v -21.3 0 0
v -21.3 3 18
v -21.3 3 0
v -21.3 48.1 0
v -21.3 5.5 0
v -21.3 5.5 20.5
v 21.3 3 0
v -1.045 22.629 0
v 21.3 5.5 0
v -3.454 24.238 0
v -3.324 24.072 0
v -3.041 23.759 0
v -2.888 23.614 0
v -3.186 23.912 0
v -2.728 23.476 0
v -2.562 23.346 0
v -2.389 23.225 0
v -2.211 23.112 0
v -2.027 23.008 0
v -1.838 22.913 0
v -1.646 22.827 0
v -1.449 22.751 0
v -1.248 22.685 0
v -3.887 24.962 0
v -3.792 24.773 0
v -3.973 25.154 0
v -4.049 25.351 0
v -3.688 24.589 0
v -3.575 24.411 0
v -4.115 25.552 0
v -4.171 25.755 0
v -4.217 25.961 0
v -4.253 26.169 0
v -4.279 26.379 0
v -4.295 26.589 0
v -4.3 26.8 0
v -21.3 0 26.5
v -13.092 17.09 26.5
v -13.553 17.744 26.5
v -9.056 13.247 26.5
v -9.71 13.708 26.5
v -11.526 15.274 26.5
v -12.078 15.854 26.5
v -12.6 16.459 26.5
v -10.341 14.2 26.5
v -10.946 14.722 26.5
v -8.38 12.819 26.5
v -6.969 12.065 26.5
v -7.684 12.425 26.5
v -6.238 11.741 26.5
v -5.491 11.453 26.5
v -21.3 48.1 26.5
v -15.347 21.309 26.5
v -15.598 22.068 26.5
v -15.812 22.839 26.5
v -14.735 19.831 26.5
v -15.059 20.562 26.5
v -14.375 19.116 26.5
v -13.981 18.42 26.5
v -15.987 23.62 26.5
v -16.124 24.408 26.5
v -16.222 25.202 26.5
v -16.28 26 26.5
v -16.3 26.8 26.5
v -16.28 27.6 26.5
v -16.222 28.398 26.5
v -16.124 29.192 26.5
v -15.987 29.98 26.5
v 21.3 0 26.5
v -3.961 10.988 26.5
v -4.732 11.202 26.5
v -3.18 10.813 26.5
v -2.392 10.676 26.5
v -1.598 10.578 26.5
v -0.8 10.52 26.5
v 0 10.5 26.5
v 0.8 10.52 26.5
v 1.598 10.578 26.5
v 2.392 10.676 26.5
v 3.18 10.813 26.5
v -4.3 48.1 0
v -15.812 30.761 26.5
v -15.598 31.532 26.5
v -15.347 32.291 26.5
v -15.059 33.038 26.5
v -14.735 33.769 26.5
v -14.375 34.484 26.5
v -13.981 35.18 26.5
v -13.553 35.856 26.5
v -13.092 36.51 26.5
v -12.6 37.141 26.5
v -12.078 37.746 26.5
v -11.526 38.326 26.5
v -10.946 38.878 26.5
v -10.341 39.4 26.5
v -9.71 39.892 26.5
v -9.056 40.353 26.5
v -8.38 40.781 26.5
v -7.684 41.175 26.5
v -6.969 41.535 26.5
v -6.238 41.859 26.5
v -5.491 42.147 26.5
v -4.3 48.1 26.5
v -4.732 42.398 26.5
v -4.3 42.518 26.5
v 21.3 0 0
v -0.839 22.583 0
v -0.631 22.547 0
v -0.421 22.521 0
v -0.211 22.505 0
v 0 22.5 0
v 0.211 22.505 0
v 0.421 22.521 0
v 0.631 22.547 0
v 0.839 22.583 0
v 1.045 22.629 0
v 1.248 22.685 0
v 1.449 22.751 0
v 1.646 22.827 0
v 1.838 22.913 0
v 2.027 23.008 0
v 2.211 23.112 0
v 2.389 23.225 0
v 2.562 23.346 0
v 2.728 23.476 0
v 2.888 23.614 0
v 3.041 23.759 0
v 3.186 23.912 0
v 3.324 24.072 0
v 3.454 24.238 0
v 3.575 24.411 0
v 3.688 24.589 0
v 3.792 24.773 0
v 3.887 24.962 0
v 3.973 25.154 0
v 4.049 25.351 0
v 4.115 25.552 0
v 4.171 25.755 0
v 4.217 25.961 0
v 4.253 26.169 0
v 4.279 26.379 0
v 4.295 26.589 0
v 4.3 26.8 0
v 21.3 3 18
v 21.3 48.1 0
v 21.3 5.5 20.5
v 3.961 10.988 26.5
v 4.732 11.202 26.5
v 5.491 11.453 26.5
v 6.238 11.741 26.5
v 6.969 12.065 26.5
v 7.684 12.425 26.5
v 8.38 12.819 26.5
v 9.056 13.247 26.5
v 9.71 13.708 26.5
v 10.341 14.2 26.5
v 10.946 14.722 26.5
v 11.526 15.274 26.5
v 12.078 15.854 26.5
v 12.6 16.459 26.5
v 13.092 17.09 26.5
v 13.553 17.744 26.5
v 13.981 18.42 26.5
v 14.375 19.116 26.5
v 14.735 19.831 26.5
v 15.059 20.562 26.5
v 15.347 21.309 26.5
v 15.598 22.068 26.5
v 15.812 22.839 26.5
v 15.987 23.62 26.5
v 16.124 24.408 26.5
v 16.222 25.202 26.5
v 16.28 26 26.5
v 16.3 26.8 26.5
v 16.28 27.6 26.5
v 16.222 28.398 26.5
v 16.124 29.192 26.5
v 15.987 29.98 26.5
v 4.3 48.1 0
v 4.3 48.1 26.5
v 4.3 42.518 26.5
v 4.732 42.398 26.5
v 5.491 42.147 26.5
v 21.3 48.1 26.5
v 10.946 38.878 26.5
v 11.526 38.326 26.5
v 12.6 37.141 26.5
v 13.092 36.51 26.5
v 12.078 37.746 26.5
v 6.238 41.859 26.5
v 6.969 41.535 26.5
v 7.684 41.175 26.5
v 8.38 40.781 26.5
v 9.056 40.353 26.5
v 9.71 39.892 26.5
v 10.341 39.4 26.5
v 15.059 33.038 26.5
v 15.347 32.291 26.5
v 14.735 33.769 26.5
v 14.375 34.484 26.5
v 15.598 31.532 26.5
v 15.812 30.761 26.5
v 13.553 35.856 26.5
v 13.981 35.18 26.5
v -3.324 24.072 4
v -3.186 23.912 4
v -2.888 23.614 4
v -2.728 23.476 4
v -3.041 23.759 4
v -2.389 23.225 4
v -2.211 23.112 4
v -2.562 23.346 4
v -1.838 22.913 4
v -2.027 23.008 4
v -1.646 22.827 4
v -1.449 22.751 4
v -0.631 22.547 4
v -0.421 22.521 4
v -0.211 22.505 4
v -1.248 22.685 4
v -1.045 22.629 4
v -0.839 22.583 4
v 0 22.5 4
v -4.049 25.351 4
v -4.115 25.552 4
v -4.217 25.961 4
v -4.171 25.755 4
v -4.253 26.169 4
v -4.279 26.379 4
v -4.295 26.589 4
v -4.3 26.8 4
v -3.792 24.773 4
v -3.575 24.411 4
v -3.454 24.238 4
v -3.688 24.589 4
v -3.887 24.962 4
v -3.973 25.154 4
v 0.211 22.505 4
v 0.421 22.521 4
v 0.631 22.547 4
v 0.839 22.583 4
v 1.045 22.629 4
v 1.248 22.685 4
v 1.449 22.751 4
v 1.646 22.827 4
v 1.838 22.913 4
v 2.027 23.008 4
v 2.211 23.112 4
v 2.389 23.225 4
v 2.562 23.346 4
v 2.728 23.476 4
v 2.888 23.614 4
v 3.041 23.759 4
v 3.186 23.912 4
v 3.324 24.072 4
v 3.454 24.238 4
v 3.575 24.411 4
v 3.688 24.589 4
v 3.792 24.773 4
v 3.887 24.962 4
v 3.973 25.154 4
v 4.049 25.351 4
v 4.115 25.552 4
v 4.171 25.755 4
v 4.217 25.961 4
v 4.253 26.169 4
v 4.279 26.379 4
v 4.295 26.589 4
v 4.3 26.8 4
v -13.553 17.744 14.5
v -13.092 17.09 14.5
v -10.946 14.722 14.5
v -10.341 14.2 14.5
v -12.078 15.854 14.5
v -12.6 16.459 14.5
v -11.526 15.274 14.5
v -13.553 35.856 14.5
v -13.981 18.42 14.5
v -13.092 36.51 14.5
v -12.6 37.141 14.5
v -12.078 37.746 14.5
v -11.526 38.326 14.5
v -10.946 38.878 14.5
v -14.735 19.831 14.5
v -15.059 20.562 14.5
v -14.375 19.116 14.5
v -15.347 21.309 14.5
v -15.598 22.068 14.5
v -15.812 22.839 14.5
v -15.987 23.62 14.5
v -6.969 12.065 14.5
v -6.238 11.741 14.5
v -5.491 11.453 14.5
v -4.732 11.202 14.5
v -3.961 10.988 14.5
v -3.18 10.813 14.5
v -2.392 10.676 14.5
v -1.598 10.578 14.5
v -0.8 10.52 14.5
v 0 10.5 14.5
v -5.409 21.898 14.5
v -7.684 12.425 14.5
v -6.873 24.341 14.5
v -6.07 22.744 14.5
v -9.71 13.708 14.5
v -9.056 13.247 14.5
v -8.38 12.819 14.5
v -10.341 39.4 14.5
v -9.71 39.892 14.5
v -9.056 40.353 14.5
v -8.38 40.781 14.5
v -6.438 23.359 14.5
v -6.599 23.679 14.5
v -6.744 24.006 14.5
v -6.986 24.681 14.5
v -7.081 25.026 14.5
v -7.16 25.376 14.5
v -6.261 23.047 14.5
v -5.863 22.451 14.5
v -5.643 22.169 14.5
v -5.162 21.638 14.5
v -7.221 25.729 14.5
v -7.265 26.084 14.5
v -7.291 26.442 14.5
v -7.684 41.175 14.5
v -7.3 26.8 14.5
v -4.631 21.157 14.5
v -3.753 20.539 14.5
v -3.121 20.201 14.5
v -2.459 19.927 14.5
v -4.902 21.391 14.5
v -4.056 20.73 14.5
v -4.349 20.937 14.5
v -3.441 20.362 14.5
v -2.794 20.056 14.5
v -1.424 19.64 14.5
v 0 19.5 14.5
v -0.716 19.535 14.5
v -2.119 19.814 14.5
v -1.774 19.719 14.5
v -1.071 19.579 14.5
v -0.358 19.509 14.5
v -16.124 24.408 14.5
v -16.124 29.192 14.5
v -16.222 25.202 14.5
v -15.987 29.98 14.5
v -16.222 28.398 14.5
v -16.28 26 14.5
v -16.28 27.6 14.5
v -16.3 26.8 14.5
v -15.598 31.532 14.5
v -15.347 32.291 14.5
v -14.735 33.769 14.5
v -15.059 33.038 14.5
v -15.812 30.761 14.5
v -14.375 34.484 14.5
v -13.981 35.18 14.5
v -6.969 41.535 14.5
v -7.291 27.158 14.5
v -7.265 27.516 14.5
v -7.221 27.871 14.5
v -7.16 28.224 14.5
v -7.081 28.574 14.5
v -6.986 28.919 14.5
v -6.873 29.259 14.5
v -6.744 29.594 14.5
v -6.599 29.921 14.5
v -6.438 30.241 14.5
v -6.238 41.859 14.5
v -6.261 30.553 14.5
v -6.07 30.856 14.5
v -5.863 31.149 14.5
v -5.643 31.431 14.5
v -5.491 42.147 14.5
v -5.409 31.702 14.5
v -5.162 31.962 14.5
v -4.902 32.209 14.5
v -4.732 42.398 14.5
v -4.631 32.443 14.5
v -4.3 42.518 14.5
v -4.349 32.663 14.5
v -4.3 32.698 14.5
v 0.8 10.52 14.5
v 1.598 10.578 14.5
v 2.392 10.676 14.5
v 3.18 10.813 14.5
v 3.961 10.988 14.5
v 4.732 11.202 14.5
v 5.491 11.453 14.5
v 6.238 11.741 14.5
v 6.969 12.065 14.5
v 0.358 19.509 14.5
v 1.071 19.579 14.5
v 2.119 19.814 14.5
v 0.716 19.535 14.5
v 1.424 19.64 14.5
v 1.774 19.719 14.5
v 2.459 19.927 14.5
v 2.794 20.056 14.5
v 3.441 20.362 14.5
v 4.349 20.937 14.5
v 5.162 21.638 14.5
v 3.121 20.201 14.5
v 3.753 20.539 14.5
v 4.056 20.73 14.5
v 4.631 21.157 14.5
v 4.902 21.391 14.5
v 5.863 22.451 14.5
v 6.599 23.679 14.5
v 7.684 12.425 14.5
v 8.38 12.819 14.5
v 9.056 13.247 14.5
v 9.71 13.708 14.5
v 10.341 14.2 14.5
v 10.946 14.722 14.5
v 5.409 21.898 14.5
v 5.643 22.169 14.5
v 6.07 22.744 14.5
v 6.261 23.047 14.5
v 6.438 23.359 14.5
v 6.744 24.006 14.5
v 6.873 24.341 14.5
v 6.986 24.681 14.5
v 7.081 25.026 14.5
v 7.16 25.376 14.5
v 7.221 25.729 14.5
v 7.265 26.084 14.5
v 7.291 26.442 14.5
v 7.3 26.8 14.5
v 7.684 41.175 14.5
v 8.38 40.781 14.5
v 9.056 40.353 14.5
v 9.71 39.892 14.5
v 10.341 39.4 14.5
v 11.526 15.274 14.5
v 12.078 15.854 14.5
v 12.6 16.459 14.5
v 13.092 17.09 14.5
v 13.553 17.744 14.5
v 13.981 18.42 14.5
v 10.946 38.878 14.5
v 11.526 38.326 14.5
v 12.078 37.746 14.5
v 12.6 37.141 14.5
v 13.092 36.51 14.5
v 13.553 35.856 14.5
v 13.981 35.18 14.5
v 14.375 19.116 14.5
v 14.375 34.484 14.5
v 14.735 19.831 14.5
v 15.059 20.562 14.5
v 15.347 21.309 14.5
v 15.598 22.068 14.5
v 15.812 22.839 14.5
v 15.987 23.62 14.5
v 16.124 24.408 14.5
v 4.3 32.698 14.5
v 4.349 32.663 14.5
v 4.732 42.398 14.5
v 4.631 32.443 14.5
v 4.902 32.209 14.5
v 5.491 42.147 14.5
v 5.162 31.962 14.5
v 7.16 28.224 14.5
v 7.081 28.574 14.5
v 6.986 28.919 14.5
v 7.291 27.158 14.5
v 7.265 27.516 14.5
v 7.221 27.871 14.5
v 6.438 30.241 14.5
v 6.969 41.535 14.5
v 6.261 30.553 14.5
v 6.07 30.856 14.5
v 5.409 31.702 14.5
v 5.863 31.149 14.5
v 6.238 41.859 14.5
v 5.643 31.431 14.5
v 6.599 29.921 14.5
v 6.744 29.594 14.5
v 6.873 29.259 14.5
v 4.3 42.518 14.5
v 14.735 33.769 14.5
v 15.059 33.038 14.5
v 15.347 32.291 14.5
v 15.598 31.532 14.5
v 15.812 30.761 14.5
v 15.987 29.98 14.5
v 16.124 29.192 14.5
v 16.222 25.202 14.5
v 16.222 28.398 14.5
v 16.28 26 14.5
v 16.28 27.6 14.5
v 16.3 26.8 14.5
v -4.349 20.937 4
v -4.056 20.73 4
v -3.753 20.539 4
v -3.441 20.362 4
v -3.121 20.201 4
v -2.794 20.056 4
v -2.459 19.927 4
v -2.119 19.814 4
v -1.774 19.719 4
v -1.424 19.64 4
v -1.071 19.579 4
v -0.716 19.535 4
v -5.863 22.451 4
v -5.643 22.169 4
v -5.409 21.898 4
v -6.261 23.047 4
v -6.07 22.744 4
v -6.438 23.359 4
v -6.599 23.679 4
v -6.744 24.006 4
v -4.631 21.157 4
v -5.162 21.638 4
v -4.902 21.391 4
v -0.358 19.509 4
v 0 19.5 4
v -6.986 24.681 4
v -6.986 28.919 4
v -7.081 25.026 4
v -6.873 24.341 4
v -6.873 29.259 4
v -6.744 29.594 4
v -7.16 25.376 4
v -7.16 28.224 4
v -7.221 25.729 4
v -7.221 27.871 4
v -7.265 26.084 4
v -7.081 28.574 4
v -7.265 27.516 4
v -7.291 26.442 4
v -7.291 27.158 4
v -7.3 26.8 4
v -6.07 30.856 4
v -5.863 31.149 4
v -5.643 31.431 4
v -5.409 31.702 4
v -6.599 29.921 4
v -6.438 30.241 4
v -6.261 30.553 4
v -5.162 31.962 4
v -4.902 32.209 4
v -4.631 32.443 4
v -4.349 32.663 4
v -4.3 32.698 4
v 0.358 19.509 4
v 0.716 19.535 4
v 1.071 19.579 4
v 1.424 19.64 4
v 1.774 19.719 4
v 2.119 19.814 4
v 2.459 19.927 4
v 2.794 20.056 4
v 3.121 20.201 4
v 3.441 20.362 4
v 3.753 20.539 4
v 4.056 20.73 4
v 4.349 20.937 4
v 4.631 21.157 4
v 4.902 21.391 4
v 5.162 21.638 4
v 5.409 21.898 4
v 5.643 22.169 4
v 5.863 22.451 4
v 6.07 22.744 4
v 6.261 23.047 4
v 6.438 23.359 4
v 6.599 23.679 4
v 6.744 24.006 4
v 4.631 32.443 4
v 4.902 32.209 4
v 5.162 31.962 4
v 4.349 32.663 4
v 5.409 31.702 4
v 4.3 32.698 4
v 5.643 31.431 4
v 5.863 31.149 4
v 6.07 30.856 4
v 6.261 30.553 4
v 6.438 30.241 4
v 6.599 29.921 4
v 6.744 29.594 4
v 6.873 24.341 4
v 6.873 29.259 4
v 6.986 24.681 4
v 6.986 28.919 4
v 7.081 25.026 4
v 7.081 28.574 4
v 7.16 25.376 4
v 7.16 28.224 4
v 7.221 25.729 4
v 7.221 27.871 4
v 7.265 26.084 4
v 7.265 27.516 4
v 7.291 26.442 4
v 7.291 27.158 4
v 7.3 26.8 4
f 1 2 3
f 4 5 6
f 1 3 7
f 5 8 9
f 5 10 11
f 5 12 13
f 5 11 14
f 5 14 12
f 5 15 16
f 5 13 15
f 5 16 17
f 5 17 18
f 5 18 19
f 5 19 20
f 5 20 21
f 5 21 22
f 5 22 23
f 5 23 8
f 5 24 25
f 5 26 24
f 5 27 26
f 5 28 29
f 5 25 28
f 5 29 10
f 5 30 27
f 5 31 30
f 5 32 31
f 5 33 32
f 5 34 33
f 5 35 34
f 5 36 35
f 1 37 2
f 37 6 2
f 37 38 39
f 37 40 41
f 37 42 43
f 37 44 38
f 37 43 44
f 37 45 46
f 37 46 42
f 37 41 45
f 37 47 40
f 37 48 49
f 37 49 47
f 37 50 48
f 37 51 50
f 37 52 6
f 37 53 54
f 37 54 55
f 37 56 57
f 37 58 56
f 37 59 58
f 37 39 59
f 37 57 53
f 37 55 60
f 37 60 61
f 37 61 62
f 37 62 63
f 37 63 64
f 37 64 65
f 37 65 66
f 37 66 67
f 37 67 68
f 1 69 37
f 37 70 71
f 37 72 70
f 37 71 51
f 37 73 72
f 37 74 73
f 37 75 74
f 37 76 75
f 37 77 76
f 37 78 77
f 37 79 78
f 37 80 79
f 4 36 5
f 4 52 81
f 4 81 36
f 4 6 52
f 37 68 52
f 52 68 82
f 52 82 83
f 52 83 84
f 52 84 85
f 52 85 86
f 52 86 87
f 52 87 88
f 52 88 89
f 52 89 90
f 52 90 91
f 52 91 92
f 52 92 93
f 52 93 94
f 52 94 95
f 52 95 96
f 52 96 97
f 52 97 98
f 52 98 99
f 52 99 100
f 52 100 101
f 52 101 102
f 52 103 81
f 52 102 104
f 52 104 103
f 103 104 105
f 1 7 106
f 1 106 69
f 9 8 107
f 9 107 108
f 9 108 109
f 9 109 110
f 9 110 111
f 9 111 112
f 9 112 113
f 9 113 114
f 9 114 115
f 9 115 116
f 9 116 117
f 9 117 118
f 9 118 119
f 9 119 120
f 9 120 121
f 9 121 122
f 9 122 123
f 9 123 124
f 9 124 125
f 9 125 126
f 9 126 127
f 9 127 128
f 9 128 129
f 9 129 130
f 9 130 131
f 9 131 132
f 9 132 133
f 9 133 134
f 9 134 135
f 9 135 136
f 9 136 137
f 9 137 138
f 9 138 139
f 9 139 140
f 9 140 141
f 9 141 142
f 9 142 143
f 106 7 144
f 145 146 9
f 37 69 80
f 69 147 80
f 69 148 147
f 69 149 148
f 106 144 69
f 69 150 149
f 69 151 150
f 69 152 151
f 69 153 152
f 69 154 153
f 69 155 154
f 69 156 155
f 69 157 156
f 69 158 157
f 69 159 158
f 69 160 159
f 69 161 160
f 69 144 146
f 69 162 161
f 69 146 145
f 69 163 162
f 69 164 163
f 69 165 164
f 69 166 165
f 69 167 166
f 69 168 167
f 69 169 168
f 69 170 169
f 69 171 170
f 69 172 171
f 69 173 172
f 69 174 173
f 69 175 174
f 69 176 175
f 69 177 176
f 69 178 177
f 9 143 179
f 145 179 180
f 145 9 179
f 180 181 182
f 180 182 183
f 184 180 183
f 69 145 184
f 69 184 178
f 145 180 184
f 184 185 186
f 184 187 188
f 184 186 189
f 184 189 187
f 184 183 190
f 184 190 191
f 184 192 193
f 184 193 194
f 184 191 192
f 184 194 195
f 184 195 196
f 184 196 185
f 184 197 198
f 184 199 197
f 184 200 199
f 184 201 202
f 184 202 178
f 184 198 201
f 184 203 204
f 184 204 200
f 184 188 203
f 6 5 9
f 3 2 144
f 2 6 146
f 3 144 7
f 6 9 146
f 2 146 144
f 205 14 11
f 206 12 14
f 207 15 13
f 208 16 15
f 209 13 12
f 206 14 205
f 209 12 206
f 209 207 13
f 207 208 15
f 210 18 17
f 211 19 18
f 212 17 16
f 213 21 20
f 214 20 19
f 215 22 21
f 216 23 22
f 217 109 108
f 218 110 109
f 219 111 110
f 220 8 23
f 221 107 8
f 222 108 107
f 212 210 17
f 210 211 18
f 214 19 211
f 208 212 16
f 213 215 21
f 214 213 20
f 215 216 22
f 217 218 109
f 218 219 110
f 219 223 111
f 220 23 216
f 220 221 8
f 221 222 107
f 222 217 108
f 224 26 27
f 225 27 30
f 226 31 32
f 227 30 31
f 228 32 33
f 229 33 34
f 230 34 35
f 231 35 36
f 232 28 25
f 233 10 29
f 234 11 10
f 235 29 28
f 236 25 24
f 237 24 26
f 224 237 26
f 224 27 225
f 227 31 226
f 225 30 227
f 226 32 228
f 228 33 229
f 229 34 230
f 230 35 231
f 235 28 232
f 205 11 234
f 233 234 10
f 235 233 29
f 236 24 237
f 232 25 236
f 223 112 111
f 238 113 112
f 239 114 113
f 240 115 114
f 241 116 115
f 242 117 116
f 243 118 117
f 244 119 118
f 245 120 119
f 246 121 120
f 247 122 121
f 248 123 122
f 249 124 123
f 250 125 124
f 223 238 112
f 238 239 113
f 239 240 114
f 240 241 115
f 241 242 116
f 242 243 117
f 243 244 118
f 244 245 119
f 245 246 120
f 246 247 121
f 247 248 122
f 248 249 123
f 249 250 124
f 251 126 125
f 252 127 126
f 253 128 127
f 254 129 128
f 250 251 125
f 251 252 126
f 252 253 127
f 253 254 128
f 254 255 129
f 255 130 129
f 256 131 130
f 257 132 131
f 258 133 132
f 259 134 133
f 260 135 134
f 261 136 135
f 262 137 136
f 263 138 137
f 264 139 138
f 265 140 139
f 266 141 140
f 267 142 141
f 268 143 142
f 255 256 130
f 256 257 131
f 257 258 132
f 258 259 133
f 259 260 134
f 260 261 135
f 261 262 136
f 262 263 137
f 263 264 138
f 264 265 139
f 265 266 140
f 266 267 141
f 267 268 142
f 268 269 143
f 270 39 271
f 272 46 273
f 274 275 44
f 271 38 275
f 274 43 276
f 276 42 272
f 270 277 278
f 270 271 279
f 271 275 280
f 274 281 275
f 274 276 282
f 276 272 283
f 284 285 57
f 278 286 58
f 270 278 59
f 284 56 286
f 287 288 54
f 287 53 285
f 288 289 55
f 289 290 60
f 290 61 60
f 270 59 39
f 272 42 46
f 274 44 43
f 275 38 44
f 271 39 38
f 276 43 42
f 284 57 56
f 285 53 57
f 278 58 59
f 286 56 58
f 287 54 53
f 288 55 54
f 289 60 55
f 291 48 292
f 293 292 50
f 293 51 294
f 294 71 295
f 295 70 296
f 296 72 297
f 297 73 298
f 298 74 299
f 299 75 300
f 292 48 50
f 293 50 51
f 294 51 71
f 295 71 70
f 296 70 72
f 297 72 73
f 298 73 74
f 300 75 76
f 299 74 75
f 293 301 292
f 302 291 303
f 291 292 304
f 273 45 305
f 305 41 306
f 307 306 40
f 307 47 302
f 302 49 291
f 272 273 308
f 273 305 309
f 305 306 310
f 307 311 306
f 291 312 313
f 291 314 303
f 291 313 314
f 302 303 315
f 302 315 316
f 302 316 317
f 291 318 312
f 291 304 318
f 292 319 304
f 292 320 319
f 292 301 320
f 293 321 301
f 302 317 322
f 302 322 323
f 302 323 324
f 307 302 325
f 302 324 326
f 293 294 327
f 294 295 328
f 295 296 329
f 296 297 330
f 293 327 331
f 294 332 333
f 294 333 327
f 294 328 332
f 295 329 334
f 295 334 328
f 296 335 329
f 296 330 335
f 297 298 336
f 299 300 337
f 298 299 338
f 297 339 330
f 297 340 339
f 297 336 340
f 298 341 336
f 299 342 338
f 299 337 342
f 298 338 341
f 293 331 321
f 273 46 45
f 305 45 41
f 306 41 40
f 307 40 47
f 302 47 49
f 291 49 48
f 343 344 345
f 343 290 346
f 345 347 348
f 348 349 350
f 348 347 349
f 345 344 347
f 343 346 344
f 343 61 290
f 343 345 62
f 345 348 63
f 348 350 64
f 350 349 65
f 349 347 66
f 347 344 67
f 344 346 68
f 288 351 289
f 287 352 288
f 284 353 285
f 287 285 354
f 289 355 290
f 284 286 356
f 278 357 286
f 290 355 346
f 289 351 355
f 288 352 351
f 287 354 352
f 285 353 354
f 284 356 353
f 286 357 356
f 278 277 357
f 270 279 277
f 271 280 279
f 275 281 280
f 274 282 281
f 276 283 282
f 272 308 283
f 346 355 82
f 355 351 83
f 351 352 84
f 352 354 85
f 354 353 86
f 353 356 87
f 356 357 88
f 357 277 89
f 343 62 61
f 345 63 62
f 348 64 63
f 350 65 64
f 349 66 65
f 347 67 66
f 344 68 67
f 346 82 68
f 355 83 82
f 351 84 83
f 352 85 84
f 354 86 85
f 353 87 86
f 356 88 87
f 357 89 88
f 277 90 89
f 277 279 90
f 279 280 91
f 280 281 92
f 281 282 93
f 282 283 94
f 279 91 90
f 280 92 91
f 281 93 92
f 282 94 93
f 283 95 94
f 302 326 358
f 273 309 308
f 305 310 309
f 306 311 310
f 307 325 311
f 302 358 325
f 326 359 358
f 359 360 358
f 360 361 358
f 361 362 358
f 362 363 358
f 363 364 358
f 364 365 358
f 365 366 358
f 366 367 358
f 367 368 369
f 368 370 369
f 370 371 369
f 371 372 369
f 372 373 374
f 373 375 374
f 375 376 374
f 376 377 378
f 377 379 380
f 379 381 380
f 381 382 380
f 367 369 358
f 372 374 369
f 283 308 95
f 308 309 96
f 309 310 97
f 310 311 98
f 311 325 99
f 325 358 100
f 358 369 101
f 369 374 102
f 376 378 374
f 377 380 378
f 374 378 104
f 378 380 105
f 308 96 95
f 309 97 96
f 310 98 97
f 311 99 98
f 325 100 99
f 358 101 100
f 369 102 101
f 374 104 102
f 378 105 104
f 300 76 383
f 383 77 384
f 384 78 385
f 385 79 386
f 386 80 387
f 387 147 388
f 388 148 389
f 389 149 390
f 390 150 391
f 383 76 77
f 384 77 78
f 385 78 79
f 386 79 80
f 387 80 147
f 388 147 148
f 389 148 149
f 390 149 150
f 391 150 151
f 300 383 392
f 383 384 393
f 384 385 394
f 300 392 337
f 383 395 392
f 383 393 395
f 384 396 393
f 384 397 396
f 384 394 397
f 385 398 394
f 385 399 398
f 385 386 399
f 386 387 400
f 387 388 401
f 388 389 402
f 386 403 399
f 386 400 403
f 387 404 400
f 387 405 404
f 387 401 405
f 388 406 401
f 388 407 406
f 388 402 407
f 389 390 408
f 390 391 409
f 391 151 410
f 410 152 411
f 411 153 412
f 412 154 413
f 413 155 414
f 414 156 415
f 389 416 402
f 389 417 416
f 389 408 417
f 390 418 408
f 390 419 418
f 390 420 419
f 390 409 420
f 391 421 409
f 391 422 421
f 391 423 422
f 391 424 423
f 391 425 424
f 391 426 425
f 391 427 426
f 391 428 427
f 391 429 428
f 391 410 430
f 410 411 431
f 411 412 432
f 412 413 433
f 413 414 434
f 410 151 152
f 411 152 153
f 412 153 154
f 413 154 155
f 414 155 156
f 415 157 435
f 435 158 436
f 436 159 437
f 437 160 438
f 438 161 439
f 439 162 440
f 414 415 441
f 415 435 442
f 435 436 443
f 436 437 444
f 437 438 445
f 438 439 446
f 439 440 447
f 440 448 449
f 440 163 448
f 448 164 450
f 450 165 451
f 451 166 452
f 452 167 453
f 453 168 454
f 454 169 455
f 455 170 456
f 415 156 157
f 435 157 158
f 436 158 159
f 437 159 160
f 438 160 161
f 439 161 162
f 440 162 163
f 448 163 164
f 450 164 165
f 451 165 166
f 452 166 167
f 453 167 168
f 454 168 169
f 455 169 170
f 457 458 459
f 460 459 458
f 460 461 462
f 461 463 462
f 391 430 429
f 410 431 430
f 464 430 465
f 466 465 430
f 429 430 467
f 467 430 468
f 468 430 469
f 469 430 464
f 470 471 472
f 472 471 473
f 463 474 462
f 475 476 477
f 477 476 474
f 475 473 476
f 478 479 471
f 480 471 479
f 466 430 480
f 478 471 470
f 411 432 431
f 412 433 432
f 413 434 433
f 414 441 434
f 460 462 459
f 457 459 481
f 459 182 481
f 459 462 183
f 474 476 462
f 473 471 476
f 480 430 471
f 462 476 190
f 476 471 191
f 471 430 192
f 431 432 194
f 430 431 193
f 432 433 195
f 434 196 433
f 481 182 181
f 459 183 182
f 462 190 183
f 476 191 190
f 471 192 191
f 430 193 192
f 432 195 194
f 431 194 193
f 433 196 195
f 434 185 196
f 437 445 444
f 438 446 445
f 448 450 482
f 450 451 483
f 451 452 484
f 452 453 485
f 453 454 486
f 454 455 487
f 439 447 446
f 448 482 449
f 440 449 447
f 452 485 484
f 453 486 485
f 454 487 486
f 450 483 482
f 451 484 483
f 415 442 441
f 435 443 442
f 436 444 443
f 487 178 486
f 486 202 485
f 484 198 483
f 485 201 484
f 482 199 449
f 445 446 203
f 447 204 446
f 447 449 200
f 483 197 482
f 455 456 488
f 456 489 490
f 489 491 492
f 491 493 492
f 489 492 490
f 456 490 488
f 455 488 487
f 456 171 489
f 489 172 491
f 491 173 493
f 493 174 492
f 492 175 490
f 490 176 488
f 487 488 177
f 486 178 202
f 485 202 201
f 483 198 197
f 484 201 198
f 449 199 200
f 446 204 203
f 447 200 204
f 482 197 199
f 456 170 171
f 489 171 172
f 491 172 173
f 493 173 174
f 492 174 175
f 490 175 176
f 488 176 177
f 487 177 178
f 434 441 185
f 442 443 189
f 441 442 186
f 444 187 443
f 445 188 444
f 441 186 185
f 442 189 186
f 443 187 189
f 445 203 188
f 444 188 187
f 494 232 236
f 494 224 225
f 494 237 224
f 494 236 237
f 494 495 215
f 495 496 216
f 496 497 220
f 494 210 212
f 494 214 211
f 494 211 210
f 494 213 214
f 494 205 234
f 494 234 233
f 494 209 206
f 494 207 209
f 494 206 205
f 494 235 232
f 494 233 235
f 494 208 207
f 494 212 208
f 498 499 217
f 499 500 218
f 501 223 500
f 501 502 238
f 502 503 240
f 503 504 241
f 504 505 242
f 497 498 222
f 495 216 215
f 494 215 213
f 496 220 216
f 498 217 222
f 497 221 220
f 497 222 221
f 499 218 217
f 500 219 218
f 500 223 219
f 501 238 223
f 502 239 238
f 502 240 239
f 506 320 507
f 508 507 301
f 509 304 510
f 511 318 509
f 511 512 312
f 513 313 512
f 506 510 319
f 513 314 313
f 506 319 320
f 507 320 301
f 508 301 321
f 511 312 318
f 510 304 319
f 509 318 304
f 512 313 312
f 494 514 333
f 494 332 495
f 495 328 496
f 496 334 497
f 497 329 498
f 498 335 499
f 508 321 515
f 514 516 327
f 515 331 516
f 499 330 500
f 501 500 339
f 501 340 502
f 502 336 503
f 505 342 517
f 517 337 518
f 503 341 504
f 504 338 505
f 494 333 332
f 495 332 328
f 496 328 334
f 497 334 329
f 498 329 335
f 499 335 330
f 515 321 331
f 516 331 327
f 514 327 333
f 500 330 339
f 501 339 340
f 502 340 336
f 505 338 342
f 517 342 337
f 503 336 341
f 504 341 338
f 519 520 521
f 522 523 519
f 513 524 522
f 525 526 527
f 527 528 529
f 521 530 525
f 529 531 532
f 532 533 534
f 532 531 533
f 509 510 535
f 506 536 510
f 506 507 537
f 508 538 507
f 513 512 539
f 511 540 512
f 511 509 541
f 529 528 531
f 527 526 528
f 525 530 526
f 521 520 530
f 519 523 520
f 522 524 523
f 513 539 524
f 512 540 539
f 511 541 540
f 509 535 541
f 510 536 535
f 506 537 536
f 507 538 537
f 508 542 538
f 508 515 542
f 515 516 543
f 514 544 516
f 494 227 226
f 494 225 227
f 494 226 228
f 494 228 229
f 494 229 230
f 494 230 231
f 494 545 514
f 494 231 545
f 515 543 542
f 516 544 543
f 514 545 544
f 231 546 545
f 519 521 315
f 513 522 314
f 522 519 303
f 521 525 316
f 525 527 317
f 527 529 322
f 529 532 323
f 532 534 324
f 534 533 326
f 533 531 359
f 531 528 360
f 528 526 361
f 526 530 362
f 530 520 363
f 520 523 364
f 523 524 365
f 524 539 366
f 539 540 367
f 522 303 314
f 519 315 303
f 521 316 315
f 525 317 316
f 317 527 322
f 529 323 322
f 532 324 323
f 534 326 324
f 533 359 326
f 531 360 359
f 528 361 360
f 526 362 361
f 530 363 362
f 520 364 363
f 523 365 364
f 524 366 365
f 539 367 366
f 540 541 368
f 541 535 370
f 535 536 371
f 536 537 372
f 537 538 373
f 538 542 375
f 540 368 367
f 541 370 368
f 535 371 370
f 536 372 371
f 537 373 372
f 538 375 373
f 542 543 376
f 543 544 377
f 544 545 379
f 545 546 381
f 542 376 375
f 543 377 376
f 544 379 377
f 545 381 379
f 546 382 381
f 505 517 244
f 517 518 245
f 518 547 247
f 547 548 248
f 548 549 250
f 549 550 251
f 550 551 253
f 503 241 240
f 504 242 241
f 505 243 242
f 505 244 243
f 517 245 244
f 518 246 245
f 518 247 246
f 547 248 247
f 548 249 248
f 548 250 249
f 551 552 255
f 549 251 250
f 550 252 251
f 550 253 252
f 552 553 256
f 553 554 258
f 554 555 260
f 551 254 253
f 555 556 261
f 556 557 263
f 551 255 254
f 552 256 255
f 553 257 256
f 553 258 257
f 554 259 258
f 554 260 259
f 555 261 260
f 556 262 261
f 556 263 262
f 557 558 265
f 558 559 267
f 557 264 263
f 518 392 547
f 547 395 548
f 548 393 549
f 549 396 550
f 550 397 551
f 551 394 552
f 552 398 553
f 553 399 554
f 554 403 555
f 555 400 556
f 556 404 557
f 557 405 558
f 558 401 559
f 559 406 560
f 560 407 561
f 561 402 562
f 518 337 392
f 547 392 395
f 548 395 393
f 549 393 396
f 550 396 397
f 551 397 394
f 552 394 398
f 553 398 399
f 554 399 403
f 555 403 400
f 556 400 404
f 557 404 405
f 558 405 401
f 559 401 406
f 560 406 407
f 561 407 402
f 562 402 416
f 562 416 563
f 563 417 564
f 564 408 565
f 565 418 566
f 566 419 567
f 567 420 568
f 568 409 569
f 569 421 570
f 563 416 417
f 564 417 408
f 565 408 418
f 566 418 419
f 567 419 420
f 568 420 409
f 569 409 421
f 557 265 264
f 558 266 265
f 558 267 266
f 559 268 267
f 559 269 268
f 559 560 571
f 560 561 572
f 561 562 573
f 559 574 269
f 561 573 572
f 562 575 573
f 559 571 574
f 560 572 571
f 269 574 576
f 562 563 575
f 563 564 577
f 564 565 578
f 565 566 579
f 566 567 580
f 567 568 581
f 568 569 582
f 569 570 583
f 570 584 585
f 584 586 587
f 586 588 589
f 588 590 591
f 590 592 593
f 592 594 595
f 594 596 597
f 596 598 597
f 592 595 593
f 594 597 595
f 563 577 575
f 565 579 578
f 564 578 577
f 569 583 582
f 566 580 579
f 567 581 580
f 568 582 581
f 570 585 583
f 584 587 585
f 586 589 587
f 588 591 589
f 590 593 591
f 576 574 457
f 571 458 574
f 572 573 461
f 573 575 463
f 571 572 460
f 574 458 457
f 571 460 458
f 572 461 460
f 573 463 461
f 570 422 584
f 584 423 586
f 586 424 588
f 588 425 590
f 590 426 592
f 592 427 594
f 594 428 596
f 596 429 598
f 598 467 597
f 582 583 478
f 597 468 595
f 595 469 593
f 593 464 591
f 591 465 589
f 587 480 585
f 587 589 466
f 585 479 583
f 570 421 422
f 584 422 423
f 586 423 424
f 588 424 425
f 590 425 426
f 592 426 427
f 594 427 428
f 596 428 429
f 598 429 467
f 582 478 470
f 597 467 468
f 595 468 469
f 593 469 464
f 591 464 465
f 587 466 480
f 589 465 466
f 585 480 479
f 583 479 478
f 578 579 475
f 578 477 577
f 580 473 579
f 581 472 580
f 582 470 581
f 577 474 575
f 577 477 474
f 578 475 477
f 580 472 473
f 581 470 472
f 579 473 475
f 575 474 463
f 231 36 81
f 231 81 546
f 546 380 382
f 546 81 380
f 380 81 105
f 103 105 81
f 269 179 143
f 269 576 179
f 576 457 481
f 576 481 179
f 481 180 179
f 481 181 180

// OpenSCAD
// SPDX-License-Identifier: CC-BY-4.0
// Example dimensions only: measure your screwdriver and hanger before printing.
// Print as modelled, socket up and mounting slot down. All dimensions are mm.

// Measured inputs — example values, not Wall Control specifications
shaft_d = 8; // Maximum shaft width — 6 in caliper
handle_d = 32; // Maximum width over the captured handle length — 6 in caliper
bolster_d = 14; // Maximum width across hex corners — 6 in caliper
bolster_l = 10; // Length projecting below handle — 6 in caliper
hanger_thickness = 2; // Strip thickness including coating — 6 in caliper
hanger_wall_gap = 8; // Clear gap behind strip — 6 in caliper
hanger_height = 40; // Strip top to bottom — 6 in caliper

// Tuning knobs
middle_bore = true;
handle_depth = 12;
diameter_clearance = 0.6; // Added to diameters and front slot width
bolster_end_clearance = 0.5;
hanger_clearance = 0.5; // Added to mounting slot thickness
wall_clearance = 0.5;
wall = 5;
bottom_thickness = 4;
rear_lip = 3;
hanger_engagement = 18; // Slot depth at its lowest roof edge
roof_meat = 4;
minimum_seat = 2; // Minimum radial shoulder under handle
$fn = 128;

// Derived values
shaft_bore_d = shaft_d + diameter_clearance;
handle_bore_d = handle_d + diameter_clearance;
middle_bore_d = middle_bore ? bolster_d + diameter_clearance : shaft_bore_d;
middle_depth = middle_bore ? bolster_l + bolster_end_clearance : 0;
handle_floor = bottom_thickness + middle_depth;
body_h = max(handle_floor + handle_depth, hanger_engagement + hanger_thickness + hanger_clearance + roof_meat);
socket_floor = body_h - handle_depth;
mount_gap = hanger_thickness + hanger_clearance;
body_w = handle_bore_d + 2 * wall;
bore_y = rear_lip + mount_gap + wall + handle_bore_d / 2;
body_d = bore_y + handle_bore_d / 2 + wall;
eps = 0.02;

assert(shaft_d > 0 && handle_d > 0 && hanger_thickness > 0 && hanger_height > 0);
assert(diameter_clearance >= 0 && hanger_clearance >= 0 && wall_clearance >= 0);
assert(handle_depth > 0 && wall >= 3 && bottom_thickness >= 3 && rear_lip >= 3 && roof_meat >= 3);
assert(hanger_engagement > 0 && hanger_engagement <= hanger_height, "Mount engagement must fit the strip height");
assert(rear_lip + wall_clearance <= hanger_wall_gap, "Rear lip does not fit behind hanger");
assert(minimum_seat >= 2 && handle_bore_d - middle_bore_d >= 2 * minimum_seat, "Leave a shoulder beneath the handle");
assert(!middle_bore || (bolster_d >= shaft_d && bolster_l > 0 && bolster_end_clearance >= 0), "Bolster must clear shaft and have positive length");
assert(socket_floor - middle_depth >= bottom_thickness, "Middle pocket reaches bottom shoulder");
echo(body_width = body_w, body_depth = body_d, body_height = body_h);
echo(handle_bore = handle_bore_d, handle_capture_depth = handle_depth, middle_bore = middle_bore_d, middle_depth = middle_depth, shaft_bore_and_slot = shaft_bore_d);
echo(mount_slot_width = mount_gap, mount_engagement = hanger_engagement, rear_lip = rear_lip, handle_seat_radial_width = (handle_bore_d - middle_bore_d) / 2);

// Constant-width mounting channel, open below and at both sides. Its roof
// rises by exactly the channel width: 45 degrees, with no flat bridge.
module mounting_channel() {
  translate([-body_w / 2 - eps, 0, 0])
    rotate([90, 0, 90])
      linear_extrude(body_w + 2 * eps)
        polygon([
          [rear_lip, -eps],
          [rear_lip + mount_gap, -eps],
          [rear_lip + mount_gap, hanger_engagement + mount_gap],
          [rear_lip, hanger_engagement],
        ]);
}

difference() {
  translate([-body_w / 2, 0, 0])
    cube([body_w, body_d, body_h]);
  mounting_channel();
  translate([0, bore_y, -eps])
    cylinder(d = shaft_bore_d, h = body_h + 2 * eps);
  translate([0, bore_y, socket_floor])
    cylinder(d = handle_bore_d, h = handle_depth + eps);
  if (middle_bore)
    translate([0, bore_y, socket_floor - middle_depth])
      cylinder(d = middle_bore_d, h = middle_depth + handle_depth + eps);
  // One cut through the whole height guarantees the same opening at every tier.
  translate([-shaft_bore_d / 2, bore_y, -eps])
    cube([shaft_bore_d, body_d - bore_y + eps, body_h + 2 * eps]);
}
